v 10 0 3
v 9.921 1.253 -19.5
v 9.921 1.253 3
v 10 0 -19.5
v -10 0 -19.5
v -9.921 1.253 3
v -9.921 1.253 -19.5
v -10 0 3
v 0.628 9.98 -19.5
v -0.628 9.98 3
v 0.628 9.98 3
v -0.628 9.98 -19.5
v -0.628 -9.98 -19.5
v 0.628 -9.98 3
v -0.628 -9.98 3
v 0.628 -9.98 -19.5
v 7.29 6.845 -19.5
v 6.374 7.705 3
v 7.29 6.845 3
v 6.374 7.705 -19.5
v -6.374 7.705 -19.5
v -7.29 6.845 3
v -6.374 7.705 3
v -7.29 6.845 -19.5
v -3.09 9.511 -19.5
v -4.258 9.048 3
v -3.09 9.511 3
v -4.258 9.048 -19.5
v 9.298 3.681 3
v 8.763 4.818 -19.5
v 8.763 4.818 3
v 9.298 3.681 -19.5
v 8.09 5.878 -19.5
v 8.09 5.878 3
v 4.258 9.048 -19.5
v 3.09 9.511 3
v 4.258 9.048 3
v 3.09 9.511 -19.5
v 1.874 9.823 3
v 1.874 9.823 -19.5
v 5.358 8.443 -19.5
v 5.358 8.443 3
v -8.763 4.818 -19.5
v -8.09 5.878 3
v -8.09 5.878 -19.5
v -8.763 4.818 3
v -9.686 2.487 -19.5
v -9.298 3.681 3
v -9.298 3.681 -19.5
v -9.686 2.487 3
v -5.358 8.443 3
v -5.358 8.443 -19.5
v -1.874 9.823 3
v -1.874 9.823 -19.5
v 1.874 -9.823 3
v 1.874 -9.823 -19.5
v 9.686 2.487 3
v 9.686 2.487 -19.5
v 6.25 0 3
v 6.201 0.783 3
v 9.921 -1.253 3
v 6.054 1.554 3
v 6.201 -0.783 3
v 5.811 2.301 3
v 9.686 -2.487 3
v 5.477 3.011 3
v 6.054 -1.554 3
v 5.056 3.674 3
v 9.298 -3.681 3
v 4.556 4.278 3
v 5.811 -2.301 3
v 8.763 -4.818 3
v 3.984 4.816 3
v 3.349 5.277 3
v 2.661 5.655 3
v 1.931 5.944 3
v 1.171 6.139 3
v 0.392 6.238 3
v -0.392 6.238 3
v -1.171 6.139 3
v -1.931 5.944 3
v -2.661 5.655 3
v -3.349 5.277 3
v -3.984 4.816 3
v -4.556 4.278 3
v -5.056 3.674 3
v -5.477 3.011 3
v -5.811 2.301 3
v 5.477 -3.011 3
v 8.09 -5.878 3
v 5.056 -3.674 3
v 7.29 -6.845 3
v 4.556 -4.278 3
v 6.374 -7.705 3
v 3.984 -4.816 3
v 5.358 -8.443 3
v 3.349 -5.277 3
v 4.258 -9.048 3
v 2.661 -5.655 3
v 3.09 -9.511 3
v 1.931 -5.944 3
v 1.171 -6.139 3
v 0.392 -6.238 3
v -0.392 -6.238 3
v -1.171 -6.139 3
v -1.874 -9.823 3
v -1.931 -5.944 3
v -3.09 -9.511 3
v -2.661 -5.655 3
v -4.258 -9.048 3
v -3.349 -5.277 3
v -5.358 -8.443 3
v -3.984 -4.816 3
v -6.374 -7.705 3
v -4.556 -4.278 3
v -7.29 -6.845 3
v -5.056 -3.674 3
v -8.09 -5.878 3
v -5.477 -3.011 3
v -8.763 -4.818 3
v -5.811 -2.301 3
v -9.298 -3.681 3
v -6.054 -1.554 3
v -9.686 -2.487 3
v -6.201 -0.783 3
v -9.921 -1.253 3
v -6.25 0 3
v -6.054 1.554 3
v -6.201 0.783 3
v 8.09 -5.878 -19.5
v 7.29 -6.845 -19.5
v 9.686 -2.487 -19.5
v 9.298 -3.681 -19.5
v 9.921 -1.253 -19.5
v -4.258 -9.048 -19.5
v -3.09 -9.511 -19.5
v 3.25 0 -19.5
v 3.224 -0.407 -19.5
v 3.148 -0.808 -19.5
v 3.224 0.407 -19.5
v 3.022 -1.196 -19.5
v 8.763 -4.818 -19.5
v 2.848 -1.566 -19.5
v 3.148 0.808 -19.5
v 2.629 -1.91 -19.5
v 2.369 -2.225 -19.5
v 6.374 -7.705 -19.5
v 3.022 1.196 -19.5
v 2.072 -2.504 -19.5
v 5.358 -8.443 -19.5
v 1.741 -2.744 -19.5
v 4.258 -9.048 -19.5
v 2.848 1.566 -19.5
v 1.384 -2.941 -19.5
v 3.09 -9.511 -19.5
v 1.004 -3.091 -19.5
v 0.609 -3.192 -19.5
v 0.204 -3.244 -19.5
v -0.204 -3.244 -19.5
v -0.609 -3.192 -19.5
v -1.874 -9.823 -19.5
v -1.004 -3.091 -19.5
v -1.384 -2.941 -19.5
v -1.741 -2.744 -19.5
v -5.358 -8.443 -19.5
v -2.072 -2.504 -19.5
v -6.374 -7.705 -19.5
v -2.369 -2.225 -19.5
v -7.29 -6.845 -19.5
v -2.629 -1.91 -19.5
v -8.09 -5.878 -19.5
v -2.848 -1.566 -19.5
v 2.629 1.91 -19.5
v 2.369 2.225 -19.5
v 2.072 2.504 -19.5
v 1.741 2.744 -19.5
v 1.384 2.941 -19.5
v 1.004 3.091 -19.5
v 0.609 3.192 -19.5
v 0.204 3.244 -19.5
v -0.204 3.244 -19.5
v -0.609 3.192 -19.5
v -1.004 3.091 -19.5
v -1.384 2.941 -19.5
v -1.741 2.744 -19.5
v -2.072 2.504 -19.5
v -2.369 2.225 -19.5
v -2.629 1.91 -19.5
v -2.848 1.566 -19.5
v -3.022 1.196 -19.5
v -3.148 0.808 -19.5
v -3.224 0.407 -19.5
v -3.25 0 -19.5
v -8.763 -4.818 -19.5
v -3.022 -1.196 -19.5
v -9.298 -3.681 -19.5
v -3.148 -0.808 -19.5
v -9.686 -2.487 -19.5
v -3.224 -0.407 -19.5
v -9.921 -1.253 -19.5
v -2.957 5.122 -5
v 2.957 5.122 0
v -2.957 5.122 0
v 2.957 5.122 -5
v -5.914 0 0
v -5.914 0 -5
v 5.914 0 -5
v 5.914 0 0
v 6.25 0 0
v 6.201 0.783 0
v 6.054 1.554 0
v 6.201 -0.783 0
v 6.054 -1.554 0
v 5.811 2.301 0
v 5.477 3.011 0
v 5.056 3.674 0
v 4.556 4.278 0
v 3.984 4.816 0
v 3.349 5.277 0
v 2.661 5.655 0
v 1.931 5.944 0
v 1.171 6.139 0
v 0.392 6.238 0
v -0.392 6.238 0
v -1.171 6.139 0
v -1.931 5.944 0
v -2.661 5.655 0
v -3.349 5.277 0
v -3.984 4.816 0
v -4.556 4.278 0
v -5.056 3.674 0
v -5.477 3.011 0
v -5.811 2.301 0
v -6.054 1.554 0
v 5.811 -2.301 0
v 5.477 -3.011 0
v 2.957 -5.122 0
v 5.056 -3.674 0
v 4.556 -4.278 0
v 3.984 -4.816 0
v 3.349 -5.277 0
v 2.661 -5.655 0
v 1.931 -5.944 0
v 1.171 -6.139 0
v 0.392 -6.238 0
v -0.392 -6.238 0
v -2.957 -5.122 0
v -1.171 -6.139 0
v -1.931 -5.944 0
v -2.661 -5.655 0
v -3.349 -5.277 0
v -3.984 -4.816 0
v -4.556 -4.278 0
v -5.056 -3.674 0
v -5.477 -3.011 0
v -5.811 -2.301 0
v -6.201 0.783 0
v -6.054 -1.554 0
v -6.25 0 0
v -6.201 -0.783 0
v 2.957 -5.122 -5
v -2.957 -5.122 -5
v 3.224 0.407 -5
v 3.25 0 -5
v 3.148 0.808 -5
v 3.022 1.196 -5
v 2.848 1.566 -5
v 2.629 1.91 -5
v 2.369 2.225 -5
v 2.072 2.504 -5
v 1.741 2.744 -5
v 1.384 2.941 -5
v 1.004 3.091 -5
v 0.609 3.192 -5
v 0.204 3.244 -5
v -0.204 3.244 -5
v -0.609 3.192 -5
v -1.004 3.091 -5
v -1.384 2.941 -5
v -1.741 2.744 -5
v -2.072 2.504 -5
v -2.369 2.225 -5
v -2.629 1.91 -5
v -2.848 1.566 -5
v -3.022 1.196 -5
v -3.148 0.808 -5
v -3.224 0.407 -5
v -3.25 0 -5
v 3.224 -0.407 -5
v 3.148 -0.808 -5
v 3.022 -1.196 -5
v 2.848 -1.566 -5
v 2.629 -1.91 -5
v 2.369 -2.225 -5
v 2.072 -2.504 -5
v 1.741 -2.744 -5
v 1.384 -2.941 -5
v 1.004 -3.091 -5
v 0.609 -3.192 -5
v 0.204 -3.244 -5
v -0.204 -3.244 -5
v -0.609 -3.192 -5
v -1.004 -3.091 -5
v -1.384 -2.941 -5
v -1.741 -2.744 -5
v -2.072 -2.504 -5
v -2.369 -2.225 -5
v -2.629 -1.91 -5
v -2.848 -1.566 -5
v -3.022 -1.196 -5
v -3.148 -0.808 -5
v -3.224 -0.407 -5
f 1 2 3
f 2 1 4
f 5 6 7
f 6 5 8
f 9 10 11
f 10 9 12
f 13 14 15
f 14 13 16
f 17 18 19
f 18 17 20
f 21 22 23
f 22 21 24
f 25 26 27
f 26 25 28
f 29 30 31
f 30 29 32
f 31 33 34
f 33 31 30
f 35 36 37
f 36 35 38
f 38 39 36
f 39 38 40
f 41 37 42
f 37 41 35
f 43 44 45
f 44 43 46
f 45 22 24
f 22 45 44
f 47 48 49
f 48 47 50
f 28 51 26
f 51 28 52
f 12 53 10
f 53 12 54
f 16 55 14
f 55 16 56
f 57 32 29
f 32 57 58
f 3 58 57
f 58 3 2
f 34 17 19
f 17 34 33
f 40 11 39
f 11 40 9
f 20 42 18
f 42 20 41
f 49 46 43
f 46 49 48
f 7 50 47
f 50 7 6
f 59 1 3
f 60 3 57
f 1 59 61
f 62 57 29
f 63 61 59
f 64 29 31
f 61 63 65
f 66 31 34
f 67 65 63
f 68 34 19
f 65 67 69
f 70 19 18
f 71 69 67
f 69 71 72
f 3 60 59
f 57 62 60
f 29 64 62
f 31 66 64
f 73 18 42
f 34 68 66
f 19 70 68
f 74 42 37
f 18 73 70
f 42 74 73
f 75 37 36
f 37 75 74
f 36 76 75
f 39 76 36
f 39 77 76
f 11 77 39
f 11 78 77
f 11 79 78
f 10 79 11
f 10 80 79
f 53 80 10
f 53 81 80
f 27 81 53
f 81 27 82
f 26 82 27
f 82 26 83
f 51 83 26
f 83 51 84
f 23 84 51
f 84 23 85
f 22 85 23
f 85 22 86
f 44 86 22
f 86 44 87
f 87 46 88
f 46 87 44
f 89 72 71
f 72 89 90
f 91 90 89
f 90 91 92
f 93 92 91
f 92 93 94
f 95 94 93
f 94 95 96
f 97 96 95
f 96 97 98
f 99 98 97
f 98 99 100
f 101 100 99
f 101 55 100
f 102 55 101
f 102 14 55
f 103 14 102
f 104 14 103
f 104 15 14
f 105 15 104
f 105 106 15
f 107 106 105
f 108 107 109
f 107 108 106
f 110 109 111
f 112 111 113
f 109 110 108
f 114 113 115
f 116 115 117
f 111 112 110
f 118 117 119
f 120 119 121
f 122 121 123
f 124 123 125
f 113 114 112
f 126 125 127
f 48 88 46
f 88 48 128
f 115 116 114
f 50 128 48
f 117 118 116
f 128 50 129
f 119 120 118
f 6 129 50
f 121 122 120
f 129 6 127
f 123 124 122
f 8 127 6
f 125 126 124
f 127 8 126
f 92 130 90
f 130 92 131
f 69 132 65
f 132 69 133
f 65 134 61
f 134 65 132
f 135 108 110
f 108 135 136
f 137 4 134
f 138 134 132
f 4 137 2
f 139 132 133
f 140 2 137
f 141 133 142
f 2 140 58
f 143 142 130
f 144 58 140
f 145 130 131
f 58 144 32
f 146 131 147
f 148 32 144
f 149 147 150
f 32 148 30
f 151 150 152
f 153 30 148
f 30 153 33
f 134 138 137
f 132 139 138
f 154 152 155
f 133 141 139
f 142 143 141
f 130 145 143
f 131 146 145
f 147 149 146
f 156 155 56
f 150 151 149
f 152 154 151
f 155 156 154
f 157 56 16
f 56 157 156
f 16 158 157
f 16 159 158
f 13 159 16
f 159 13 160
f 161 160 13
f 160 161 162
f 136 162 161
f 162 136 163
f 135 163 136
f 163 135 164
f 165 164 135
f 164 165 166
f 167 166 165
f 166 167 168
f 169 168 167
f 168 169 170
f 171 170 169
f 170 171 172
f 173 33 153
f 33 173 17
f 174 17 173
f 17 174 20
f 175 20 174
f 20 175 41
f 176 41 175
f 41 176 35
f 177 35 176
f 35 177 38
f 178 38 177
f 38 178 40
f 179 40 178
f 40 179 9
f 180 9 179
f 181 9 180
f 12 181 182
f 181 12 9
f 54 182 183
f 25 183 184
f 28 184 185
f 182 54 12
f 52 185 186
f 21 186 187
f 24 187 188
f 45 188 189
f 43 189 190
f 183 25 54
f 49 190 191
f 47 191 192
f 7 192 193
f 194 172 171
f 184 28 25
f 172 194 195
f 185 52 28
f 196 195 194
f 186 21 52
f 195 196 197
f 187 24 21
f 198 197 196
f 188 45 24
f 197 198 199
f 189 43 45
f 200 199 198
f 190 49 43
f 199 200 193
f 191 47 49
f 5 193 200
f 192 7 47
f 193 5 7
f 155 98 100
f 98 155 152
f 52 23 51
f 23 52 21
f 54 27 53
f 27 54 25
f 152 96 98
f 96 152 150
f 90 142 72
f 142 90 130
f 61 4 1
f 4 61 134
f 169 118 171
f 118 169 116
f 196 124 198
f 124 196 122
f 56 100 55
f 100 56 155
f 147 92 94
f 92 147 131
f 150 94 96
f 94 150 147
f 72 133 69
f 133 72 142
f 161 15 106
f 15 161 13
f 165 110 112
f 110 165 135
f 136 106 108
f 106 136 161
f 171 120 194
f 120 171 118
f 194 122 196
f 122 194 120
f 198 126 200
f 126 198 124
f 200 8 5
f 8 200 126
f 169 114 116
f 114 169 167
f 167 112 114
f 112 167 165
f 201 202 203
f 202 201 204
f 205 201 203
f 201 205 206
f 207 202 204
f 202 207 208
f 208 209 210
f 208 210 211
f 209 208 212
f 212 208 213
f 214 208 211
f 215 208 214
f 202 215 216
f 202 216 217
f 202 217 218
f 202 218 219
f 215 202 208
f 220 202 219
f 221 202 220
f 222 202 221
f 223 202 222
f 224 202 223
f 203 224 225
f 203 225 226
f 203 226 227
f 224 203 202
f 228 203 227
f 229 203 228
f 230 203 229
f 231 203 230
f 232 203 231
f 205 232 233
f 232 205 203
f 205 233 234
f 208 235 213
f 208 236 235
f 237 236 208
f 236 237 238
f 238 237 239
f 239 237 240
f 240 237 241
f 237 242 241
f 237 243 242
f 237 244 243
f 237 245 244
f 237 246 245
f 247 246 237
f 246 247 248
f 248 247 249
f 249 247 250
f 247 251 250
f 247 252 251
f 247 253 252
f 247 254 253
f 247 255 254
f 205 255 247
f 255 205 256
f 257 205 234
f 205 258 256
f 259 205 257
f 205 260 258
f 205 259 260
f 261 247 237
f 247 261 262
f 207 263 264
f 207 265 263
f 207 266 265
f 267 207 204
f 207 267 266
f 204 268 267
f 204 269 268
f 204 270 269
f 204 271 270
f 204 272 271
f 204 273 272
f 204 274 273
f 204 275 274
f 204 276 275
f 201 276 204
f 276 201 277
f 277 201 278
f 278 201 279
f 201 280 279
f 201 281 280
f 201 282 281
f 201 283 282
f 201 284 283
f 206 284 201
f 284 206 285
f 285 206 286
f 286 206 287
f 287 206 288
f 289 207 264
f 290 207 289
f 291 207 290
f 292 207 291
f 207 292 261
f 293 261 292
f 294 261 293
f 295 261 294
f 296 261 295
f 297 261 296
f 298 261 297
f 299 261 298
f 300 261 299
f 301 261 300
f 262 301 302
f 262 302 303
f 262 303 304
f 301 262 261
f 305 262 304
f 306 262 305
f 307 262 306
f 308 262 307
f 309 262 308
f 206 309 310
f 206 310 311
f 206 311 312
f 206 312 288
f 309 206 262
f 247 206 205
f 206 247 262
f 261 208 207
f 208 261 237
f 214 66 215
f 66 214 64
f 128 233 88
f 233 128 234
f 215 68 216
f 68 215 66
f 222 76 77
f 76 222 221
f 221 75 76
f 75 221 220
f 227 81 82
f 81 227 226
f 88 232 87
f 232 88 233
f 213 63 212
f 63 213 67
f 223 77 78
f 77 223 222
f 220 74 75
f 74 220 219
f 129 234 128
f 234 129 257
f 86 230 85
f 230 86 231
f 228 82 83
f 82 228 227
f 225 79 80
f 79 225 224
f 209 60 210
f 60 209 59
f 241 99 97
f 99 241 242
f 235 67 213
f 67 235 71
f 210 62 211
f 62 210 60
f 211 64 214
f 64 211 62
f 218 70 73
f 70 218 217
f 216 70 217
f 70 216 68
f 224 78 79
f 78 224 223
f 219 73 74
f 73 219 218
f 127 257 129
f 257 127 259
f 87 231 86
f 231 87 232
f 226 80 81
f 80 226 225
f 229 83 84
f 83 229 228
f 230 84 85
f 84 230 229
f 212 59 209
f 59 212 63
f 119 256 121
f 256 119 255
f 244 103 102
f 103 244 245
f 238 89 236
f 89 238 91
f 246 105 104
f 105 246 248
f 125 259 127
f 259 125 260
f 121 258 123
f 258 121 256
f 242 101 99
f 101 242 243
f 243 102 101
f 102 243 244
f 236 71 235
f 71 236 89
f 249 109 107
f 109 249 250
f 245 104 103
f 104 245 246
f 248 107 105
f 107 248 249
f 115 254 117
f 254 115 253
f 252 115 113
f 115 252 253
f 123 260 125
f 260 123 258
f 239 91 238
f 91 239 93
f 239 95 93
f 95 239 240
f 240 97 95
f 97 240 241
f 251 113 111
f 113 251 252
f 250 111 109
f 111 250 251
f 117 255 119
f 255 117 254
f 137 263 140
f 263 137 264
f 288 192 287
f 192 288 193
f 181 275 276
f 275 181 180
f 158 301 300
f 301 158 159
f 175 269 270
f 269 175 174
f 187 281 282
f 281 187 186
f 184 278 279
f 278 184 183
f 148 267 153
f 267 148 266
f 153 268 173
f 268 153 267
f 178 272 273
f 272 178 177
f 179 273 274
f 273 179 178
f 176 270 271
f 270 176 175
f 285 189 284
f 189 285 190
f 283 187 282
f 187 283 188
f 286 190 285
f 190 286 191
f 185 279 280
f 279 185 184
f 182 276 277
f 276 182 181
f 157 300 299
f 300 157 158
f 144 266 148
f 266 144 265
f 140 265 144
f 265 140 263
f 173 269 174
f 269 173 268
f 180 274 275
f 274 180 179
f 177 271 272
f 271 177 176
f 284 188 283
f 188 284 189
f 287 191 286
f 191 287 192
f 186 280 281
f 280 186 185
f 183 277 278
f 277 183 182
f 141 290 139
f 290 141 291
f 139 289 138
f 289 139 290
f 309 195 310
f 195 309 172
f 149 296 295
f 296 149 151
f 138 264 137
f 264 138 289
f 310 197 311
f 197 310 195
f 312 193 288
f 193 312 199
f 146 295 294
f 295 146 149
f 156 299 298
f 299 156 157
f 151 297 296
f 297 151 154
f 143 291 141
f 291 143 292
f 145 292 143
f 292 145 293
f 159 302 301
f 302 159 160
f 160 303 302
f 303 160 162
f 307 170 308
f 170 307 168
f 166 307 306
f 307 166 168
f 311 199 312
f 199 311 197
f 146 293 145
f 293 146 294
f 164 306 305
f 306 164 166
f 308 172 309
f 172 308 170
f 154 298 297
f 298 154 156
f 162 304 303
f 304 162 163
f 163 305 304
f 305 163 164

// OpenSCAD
$fn = 50;


difference() {
	union() {
		translate(v = [0, 0, -19.5000000000]) {
			cylinder(h = 22.5000000000, r = 10.0000000000);
		}
	}
	union() {
		translate(v = [0, 0, 0]) {
			rotate(a = [0, 0, 0]) {
				difference() {
					union() {
						translate(v = [0, 0, -5]) {
							linear_extrude(height = 5) {
								polygon(points = [[5.9142500000, 0.0000000000], [2.9571250000, 5.1218907443], [-2.9571250000, 5.1218907443], [-5.9142500000, 0.0000000000], [-2.9571250000, -5.1218907443], [2.9571250000, -5.1218907443]]);
							}
						}
					}
					union();
				}
			}
		}
		#cylinder(h = 3, r = 6.2500000000);
		#translate(v = [0, 0, -100.0000000000]) {
			cylinder(h = 200, r = 3.2500000000);
		}
	}
}
